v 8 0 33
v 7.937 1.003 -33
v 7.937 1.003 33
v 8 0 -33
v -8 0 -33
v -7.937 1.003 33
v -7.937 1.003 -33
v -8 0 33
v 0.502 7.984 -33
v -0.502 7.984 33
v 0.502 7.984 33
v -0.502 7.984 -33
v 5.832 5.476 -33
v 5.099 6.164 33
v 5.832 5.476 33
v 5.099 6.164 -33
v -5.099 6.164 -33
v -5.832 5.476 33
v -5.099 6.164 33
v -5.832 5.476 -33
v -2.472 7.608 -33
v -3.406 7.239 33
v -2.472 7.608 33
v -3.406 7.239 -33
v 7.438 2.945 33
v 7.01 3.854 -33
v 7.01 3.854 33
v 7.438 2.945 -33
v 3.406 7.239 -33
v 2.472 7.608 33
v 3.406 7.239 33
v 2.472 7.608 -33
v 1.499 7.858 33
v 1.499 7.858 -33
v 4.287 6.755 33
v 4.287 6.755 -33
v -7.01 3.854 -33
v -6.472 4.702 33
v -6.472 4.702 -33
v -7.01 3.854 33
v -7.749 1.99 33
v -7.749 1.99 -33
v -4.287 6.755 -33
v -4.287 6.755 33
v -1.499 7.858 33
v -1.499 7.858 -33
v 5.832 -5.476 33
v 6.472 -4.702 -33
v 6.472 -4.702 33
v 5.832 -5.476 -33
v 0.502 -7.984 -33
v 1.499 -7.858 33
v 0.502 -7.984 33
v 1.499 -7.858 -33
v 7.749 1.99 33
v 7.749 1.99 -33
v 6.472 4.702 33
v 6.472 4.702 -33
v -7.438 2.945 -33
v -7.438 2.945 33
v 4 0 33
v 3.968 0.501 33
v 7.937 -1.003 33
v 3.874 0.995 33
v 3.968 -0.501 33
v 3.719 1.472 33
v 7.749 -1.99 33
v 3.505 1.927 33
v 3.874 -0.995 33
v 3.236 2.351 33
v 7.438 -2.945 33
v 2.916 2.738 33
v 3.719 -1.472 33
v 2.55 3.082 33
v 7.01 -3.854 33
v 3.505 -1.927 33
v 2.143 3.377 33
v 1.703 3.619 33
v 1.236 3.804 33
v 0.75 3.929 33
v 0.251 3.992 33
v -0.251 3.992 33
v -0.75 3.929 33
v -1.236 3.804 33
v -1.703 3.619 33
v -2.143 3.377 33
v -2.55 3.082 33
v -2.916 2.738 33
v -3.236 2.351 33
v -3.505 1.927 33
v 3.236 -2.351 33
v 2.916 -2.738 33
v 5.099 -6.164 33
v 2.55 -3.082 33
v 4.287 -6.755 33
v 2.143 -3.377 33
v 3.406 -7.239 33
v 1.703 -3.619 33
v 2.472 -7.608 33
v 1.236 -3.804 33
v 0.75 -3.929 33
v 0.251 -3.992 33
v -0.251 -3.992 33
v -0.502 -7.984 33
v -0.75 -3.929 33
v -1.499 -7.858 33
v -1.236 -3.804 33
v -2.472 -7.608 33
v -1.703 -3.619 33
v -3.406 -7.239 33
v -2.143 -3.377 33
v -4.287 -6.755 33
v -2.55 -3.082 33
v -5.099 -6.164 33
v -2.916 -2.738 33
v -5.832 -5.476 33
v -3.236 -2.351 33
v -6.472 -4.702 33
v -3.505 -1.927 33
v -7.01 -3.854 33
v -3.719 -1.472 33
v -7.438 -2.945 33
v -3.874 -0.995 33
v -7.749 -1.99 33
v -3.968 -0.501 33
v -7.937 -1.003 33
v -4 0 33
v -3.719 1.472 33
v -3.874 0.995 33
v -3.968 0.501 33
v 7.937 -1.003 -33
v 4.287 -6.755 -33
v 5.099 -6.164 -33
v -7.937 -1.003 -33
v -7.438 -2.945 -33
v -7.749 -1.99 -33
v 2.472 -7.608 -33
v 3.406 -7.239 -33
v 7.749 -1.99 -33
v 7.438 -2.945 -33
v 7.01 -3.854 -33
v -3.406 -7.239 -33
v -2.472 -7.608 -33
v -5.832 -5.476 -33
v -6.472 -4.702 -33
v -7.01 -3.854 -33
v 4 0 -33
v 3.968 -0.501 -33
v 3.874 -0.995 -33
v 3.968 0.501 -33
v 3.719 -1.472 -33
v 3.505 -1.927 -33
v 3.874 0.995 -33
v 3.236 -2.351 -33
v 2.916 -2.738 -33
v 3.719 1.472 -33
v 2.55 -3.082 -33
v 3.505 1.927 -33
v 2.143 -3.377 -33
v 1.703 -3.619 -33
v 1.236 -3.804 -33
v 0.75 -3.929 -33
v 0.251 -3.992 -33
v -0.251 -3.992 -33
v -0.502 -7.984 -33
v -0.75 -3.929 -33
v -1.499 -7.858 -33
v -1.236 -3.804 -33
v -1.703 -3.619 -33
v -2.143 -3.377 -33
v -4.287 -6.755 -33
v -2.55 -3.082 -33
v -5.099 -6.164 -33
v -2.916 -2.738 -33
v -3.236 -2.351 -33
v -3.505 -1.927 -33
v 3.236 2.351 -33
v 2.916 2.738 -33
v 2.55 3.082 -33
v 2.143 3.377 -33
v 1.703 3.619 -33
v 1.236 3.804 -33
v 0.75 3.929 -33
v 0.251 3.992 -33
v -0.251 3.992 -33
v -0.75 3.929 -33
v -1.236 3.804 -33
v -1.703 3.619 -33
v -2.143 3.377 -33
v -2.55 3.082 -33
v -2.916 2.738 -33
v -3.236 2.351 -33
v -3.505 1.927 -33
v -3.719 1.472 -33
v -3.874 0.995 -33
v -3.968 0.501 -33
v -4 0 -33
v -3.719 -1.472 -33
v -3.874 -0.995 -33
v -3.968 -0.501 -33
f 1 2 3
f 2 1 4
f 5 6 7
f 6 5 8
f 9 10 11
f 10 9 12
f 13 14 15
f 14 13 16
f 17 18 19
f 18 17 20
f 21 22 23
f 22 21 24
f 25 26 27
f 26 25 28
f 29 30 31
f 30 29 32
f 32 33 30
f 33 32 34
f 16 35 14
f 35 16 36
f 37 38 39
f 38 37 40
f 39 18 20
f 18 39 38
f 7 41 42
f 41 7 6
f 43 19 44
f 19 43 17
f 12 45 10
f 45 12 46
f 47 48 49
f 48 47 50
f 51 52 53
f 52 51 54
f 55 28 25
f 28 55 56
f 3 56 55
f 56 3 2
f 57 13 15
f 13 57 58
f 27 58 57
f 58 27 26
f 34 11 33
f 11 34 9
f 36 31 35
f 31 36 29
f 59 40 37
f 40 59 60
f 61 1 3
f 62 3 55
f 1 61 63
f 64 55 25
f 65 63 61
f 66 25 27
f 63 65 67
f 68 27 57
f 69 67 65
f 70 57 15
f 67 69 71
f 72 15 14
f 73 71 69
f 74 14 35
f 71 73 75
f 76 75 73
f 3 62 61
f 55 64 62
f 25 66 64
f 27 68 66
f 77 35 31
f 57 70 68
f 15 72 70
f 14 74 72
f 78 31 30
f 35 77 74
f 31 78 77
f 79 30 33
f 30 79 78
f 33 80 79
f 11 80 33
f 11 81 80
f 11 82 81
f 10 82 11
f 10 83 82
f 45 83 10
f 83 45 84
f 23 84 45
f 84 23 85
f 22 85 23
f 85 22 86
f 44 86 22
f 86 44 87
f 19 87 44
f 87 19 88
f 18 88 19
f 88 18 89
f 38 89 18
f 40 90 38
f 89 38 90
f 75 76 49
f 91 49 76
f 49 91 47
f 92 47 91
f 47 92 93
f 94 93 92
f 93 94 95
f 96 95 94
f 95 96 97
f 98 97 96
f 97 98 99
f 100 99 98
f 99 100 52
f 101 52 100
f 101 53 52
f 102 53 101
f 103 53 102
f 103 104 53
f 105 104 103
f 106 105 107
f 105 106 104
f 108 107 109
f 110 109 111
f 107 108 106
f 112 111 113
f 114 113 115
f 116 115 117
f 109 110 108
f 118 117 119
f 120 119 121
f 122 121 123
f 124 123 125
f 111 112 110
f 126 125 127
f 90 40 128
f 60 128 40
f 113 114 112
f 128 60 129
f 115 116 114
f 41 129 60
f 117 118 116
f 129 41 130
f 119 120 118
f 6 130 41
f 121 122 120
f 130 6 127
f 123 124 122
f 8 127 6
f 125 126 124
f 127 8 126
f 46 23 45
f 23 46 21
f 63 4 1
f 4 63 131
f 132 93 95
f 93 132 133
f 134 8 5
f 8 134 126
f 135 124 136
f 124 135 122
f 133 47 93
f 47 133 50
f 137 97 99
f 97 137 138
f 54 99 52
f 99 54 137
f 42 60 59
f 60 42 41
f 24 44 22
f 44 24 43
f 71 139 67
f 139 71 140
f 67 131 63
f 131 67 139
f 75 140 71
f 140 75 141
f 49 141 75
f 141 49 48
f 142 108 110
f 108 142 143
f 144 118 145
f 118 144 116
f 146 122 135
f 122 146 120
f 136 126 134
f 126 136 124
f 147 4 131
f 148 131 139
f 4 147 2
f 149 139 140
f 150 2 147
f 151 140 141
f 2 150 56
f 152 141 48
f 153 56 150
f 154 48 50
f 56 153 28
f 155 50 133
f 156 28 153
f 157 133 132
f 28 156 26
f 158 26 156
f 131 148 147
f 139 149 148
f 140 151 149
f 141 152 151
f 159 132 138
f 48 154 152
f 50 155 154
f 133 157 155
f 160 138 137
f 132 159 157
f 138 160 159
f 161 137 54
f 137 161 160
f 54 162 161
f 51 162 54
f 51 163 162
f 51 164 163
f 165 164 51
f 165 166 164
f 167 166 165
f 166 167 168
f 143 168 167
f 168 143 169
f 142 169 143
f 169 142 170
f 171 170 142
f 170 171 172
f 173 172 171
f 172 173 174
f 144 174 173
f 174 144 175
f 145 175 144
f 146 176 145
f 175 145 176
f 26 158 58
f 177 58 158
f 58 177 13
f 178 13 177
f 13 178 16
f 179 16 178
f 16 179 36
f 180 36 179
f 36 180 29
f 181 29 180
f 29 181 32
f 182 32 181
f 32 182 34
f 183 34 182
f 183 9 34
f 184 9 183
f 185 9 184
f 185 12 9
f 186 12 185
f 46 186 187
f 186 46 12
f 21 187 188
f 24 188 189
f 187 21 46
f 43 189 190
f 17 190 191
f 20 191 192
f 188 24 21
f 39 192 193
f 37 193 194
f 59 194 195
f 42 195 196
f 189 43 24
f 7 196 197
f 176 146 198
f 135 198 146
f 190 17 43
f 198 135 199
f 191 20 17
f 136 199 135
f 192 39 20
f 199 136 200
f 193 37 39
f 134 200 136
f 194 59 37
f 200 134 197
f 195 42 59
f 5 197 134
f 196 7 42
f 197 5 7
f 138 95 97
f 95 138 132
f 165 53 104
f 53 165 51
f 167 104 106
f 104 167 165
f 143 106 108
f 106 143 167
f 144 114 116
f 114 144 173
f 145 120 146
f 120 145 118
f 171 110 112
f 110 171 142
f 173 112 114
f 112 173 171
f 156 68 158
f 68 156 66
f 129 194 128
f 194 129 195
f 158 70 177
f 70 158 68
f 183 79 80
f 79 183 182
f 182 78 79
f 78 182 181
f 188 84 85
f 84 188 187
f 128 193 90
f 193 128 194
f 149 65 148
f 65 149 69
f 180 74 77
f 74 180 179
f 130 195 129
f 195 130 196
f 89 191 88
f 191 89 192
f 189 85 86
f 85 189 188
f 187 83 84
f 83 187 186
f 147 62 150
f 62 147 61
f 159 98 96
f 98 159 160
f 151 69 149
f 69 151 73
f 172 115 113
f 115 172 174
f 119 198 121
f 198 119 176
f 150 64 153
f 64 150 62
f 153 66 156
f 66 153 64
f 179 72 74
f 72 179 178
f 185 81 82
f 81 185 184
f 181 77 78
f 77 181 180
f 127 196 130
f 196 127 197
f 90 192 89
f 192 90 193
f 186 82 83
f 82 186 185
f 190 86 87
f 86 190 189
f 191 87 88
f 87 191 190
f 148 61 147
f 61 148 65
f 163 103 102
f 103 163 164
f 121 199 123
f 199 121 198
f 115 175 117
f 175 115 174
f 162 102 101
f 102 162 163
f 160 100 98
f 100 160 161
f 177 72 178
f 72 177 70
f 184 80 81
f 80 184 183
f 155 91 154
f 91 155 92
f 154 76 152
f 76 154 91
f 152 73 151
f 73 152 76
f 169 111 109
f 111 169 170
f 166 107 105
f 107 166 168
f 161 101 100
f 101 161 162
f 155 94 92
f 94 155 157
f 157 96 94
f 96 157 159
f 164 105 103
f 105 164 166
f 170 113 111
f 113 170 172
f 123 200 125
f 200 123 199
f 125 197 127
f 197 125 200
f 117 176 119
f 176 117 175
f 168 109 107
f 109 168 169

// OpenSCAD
$fn = 50;


difference() {
	union() {
		translate(v = [0, 0, -33.0000000000]) {
			cylinder(h = 66, r = 8.0000000000);
		}
	}
	union() {
		translate(v = [0, 0, -100.0000000000]) {
			cylinder(h = 200, r = 4.0000000000);
		}
	}
}
